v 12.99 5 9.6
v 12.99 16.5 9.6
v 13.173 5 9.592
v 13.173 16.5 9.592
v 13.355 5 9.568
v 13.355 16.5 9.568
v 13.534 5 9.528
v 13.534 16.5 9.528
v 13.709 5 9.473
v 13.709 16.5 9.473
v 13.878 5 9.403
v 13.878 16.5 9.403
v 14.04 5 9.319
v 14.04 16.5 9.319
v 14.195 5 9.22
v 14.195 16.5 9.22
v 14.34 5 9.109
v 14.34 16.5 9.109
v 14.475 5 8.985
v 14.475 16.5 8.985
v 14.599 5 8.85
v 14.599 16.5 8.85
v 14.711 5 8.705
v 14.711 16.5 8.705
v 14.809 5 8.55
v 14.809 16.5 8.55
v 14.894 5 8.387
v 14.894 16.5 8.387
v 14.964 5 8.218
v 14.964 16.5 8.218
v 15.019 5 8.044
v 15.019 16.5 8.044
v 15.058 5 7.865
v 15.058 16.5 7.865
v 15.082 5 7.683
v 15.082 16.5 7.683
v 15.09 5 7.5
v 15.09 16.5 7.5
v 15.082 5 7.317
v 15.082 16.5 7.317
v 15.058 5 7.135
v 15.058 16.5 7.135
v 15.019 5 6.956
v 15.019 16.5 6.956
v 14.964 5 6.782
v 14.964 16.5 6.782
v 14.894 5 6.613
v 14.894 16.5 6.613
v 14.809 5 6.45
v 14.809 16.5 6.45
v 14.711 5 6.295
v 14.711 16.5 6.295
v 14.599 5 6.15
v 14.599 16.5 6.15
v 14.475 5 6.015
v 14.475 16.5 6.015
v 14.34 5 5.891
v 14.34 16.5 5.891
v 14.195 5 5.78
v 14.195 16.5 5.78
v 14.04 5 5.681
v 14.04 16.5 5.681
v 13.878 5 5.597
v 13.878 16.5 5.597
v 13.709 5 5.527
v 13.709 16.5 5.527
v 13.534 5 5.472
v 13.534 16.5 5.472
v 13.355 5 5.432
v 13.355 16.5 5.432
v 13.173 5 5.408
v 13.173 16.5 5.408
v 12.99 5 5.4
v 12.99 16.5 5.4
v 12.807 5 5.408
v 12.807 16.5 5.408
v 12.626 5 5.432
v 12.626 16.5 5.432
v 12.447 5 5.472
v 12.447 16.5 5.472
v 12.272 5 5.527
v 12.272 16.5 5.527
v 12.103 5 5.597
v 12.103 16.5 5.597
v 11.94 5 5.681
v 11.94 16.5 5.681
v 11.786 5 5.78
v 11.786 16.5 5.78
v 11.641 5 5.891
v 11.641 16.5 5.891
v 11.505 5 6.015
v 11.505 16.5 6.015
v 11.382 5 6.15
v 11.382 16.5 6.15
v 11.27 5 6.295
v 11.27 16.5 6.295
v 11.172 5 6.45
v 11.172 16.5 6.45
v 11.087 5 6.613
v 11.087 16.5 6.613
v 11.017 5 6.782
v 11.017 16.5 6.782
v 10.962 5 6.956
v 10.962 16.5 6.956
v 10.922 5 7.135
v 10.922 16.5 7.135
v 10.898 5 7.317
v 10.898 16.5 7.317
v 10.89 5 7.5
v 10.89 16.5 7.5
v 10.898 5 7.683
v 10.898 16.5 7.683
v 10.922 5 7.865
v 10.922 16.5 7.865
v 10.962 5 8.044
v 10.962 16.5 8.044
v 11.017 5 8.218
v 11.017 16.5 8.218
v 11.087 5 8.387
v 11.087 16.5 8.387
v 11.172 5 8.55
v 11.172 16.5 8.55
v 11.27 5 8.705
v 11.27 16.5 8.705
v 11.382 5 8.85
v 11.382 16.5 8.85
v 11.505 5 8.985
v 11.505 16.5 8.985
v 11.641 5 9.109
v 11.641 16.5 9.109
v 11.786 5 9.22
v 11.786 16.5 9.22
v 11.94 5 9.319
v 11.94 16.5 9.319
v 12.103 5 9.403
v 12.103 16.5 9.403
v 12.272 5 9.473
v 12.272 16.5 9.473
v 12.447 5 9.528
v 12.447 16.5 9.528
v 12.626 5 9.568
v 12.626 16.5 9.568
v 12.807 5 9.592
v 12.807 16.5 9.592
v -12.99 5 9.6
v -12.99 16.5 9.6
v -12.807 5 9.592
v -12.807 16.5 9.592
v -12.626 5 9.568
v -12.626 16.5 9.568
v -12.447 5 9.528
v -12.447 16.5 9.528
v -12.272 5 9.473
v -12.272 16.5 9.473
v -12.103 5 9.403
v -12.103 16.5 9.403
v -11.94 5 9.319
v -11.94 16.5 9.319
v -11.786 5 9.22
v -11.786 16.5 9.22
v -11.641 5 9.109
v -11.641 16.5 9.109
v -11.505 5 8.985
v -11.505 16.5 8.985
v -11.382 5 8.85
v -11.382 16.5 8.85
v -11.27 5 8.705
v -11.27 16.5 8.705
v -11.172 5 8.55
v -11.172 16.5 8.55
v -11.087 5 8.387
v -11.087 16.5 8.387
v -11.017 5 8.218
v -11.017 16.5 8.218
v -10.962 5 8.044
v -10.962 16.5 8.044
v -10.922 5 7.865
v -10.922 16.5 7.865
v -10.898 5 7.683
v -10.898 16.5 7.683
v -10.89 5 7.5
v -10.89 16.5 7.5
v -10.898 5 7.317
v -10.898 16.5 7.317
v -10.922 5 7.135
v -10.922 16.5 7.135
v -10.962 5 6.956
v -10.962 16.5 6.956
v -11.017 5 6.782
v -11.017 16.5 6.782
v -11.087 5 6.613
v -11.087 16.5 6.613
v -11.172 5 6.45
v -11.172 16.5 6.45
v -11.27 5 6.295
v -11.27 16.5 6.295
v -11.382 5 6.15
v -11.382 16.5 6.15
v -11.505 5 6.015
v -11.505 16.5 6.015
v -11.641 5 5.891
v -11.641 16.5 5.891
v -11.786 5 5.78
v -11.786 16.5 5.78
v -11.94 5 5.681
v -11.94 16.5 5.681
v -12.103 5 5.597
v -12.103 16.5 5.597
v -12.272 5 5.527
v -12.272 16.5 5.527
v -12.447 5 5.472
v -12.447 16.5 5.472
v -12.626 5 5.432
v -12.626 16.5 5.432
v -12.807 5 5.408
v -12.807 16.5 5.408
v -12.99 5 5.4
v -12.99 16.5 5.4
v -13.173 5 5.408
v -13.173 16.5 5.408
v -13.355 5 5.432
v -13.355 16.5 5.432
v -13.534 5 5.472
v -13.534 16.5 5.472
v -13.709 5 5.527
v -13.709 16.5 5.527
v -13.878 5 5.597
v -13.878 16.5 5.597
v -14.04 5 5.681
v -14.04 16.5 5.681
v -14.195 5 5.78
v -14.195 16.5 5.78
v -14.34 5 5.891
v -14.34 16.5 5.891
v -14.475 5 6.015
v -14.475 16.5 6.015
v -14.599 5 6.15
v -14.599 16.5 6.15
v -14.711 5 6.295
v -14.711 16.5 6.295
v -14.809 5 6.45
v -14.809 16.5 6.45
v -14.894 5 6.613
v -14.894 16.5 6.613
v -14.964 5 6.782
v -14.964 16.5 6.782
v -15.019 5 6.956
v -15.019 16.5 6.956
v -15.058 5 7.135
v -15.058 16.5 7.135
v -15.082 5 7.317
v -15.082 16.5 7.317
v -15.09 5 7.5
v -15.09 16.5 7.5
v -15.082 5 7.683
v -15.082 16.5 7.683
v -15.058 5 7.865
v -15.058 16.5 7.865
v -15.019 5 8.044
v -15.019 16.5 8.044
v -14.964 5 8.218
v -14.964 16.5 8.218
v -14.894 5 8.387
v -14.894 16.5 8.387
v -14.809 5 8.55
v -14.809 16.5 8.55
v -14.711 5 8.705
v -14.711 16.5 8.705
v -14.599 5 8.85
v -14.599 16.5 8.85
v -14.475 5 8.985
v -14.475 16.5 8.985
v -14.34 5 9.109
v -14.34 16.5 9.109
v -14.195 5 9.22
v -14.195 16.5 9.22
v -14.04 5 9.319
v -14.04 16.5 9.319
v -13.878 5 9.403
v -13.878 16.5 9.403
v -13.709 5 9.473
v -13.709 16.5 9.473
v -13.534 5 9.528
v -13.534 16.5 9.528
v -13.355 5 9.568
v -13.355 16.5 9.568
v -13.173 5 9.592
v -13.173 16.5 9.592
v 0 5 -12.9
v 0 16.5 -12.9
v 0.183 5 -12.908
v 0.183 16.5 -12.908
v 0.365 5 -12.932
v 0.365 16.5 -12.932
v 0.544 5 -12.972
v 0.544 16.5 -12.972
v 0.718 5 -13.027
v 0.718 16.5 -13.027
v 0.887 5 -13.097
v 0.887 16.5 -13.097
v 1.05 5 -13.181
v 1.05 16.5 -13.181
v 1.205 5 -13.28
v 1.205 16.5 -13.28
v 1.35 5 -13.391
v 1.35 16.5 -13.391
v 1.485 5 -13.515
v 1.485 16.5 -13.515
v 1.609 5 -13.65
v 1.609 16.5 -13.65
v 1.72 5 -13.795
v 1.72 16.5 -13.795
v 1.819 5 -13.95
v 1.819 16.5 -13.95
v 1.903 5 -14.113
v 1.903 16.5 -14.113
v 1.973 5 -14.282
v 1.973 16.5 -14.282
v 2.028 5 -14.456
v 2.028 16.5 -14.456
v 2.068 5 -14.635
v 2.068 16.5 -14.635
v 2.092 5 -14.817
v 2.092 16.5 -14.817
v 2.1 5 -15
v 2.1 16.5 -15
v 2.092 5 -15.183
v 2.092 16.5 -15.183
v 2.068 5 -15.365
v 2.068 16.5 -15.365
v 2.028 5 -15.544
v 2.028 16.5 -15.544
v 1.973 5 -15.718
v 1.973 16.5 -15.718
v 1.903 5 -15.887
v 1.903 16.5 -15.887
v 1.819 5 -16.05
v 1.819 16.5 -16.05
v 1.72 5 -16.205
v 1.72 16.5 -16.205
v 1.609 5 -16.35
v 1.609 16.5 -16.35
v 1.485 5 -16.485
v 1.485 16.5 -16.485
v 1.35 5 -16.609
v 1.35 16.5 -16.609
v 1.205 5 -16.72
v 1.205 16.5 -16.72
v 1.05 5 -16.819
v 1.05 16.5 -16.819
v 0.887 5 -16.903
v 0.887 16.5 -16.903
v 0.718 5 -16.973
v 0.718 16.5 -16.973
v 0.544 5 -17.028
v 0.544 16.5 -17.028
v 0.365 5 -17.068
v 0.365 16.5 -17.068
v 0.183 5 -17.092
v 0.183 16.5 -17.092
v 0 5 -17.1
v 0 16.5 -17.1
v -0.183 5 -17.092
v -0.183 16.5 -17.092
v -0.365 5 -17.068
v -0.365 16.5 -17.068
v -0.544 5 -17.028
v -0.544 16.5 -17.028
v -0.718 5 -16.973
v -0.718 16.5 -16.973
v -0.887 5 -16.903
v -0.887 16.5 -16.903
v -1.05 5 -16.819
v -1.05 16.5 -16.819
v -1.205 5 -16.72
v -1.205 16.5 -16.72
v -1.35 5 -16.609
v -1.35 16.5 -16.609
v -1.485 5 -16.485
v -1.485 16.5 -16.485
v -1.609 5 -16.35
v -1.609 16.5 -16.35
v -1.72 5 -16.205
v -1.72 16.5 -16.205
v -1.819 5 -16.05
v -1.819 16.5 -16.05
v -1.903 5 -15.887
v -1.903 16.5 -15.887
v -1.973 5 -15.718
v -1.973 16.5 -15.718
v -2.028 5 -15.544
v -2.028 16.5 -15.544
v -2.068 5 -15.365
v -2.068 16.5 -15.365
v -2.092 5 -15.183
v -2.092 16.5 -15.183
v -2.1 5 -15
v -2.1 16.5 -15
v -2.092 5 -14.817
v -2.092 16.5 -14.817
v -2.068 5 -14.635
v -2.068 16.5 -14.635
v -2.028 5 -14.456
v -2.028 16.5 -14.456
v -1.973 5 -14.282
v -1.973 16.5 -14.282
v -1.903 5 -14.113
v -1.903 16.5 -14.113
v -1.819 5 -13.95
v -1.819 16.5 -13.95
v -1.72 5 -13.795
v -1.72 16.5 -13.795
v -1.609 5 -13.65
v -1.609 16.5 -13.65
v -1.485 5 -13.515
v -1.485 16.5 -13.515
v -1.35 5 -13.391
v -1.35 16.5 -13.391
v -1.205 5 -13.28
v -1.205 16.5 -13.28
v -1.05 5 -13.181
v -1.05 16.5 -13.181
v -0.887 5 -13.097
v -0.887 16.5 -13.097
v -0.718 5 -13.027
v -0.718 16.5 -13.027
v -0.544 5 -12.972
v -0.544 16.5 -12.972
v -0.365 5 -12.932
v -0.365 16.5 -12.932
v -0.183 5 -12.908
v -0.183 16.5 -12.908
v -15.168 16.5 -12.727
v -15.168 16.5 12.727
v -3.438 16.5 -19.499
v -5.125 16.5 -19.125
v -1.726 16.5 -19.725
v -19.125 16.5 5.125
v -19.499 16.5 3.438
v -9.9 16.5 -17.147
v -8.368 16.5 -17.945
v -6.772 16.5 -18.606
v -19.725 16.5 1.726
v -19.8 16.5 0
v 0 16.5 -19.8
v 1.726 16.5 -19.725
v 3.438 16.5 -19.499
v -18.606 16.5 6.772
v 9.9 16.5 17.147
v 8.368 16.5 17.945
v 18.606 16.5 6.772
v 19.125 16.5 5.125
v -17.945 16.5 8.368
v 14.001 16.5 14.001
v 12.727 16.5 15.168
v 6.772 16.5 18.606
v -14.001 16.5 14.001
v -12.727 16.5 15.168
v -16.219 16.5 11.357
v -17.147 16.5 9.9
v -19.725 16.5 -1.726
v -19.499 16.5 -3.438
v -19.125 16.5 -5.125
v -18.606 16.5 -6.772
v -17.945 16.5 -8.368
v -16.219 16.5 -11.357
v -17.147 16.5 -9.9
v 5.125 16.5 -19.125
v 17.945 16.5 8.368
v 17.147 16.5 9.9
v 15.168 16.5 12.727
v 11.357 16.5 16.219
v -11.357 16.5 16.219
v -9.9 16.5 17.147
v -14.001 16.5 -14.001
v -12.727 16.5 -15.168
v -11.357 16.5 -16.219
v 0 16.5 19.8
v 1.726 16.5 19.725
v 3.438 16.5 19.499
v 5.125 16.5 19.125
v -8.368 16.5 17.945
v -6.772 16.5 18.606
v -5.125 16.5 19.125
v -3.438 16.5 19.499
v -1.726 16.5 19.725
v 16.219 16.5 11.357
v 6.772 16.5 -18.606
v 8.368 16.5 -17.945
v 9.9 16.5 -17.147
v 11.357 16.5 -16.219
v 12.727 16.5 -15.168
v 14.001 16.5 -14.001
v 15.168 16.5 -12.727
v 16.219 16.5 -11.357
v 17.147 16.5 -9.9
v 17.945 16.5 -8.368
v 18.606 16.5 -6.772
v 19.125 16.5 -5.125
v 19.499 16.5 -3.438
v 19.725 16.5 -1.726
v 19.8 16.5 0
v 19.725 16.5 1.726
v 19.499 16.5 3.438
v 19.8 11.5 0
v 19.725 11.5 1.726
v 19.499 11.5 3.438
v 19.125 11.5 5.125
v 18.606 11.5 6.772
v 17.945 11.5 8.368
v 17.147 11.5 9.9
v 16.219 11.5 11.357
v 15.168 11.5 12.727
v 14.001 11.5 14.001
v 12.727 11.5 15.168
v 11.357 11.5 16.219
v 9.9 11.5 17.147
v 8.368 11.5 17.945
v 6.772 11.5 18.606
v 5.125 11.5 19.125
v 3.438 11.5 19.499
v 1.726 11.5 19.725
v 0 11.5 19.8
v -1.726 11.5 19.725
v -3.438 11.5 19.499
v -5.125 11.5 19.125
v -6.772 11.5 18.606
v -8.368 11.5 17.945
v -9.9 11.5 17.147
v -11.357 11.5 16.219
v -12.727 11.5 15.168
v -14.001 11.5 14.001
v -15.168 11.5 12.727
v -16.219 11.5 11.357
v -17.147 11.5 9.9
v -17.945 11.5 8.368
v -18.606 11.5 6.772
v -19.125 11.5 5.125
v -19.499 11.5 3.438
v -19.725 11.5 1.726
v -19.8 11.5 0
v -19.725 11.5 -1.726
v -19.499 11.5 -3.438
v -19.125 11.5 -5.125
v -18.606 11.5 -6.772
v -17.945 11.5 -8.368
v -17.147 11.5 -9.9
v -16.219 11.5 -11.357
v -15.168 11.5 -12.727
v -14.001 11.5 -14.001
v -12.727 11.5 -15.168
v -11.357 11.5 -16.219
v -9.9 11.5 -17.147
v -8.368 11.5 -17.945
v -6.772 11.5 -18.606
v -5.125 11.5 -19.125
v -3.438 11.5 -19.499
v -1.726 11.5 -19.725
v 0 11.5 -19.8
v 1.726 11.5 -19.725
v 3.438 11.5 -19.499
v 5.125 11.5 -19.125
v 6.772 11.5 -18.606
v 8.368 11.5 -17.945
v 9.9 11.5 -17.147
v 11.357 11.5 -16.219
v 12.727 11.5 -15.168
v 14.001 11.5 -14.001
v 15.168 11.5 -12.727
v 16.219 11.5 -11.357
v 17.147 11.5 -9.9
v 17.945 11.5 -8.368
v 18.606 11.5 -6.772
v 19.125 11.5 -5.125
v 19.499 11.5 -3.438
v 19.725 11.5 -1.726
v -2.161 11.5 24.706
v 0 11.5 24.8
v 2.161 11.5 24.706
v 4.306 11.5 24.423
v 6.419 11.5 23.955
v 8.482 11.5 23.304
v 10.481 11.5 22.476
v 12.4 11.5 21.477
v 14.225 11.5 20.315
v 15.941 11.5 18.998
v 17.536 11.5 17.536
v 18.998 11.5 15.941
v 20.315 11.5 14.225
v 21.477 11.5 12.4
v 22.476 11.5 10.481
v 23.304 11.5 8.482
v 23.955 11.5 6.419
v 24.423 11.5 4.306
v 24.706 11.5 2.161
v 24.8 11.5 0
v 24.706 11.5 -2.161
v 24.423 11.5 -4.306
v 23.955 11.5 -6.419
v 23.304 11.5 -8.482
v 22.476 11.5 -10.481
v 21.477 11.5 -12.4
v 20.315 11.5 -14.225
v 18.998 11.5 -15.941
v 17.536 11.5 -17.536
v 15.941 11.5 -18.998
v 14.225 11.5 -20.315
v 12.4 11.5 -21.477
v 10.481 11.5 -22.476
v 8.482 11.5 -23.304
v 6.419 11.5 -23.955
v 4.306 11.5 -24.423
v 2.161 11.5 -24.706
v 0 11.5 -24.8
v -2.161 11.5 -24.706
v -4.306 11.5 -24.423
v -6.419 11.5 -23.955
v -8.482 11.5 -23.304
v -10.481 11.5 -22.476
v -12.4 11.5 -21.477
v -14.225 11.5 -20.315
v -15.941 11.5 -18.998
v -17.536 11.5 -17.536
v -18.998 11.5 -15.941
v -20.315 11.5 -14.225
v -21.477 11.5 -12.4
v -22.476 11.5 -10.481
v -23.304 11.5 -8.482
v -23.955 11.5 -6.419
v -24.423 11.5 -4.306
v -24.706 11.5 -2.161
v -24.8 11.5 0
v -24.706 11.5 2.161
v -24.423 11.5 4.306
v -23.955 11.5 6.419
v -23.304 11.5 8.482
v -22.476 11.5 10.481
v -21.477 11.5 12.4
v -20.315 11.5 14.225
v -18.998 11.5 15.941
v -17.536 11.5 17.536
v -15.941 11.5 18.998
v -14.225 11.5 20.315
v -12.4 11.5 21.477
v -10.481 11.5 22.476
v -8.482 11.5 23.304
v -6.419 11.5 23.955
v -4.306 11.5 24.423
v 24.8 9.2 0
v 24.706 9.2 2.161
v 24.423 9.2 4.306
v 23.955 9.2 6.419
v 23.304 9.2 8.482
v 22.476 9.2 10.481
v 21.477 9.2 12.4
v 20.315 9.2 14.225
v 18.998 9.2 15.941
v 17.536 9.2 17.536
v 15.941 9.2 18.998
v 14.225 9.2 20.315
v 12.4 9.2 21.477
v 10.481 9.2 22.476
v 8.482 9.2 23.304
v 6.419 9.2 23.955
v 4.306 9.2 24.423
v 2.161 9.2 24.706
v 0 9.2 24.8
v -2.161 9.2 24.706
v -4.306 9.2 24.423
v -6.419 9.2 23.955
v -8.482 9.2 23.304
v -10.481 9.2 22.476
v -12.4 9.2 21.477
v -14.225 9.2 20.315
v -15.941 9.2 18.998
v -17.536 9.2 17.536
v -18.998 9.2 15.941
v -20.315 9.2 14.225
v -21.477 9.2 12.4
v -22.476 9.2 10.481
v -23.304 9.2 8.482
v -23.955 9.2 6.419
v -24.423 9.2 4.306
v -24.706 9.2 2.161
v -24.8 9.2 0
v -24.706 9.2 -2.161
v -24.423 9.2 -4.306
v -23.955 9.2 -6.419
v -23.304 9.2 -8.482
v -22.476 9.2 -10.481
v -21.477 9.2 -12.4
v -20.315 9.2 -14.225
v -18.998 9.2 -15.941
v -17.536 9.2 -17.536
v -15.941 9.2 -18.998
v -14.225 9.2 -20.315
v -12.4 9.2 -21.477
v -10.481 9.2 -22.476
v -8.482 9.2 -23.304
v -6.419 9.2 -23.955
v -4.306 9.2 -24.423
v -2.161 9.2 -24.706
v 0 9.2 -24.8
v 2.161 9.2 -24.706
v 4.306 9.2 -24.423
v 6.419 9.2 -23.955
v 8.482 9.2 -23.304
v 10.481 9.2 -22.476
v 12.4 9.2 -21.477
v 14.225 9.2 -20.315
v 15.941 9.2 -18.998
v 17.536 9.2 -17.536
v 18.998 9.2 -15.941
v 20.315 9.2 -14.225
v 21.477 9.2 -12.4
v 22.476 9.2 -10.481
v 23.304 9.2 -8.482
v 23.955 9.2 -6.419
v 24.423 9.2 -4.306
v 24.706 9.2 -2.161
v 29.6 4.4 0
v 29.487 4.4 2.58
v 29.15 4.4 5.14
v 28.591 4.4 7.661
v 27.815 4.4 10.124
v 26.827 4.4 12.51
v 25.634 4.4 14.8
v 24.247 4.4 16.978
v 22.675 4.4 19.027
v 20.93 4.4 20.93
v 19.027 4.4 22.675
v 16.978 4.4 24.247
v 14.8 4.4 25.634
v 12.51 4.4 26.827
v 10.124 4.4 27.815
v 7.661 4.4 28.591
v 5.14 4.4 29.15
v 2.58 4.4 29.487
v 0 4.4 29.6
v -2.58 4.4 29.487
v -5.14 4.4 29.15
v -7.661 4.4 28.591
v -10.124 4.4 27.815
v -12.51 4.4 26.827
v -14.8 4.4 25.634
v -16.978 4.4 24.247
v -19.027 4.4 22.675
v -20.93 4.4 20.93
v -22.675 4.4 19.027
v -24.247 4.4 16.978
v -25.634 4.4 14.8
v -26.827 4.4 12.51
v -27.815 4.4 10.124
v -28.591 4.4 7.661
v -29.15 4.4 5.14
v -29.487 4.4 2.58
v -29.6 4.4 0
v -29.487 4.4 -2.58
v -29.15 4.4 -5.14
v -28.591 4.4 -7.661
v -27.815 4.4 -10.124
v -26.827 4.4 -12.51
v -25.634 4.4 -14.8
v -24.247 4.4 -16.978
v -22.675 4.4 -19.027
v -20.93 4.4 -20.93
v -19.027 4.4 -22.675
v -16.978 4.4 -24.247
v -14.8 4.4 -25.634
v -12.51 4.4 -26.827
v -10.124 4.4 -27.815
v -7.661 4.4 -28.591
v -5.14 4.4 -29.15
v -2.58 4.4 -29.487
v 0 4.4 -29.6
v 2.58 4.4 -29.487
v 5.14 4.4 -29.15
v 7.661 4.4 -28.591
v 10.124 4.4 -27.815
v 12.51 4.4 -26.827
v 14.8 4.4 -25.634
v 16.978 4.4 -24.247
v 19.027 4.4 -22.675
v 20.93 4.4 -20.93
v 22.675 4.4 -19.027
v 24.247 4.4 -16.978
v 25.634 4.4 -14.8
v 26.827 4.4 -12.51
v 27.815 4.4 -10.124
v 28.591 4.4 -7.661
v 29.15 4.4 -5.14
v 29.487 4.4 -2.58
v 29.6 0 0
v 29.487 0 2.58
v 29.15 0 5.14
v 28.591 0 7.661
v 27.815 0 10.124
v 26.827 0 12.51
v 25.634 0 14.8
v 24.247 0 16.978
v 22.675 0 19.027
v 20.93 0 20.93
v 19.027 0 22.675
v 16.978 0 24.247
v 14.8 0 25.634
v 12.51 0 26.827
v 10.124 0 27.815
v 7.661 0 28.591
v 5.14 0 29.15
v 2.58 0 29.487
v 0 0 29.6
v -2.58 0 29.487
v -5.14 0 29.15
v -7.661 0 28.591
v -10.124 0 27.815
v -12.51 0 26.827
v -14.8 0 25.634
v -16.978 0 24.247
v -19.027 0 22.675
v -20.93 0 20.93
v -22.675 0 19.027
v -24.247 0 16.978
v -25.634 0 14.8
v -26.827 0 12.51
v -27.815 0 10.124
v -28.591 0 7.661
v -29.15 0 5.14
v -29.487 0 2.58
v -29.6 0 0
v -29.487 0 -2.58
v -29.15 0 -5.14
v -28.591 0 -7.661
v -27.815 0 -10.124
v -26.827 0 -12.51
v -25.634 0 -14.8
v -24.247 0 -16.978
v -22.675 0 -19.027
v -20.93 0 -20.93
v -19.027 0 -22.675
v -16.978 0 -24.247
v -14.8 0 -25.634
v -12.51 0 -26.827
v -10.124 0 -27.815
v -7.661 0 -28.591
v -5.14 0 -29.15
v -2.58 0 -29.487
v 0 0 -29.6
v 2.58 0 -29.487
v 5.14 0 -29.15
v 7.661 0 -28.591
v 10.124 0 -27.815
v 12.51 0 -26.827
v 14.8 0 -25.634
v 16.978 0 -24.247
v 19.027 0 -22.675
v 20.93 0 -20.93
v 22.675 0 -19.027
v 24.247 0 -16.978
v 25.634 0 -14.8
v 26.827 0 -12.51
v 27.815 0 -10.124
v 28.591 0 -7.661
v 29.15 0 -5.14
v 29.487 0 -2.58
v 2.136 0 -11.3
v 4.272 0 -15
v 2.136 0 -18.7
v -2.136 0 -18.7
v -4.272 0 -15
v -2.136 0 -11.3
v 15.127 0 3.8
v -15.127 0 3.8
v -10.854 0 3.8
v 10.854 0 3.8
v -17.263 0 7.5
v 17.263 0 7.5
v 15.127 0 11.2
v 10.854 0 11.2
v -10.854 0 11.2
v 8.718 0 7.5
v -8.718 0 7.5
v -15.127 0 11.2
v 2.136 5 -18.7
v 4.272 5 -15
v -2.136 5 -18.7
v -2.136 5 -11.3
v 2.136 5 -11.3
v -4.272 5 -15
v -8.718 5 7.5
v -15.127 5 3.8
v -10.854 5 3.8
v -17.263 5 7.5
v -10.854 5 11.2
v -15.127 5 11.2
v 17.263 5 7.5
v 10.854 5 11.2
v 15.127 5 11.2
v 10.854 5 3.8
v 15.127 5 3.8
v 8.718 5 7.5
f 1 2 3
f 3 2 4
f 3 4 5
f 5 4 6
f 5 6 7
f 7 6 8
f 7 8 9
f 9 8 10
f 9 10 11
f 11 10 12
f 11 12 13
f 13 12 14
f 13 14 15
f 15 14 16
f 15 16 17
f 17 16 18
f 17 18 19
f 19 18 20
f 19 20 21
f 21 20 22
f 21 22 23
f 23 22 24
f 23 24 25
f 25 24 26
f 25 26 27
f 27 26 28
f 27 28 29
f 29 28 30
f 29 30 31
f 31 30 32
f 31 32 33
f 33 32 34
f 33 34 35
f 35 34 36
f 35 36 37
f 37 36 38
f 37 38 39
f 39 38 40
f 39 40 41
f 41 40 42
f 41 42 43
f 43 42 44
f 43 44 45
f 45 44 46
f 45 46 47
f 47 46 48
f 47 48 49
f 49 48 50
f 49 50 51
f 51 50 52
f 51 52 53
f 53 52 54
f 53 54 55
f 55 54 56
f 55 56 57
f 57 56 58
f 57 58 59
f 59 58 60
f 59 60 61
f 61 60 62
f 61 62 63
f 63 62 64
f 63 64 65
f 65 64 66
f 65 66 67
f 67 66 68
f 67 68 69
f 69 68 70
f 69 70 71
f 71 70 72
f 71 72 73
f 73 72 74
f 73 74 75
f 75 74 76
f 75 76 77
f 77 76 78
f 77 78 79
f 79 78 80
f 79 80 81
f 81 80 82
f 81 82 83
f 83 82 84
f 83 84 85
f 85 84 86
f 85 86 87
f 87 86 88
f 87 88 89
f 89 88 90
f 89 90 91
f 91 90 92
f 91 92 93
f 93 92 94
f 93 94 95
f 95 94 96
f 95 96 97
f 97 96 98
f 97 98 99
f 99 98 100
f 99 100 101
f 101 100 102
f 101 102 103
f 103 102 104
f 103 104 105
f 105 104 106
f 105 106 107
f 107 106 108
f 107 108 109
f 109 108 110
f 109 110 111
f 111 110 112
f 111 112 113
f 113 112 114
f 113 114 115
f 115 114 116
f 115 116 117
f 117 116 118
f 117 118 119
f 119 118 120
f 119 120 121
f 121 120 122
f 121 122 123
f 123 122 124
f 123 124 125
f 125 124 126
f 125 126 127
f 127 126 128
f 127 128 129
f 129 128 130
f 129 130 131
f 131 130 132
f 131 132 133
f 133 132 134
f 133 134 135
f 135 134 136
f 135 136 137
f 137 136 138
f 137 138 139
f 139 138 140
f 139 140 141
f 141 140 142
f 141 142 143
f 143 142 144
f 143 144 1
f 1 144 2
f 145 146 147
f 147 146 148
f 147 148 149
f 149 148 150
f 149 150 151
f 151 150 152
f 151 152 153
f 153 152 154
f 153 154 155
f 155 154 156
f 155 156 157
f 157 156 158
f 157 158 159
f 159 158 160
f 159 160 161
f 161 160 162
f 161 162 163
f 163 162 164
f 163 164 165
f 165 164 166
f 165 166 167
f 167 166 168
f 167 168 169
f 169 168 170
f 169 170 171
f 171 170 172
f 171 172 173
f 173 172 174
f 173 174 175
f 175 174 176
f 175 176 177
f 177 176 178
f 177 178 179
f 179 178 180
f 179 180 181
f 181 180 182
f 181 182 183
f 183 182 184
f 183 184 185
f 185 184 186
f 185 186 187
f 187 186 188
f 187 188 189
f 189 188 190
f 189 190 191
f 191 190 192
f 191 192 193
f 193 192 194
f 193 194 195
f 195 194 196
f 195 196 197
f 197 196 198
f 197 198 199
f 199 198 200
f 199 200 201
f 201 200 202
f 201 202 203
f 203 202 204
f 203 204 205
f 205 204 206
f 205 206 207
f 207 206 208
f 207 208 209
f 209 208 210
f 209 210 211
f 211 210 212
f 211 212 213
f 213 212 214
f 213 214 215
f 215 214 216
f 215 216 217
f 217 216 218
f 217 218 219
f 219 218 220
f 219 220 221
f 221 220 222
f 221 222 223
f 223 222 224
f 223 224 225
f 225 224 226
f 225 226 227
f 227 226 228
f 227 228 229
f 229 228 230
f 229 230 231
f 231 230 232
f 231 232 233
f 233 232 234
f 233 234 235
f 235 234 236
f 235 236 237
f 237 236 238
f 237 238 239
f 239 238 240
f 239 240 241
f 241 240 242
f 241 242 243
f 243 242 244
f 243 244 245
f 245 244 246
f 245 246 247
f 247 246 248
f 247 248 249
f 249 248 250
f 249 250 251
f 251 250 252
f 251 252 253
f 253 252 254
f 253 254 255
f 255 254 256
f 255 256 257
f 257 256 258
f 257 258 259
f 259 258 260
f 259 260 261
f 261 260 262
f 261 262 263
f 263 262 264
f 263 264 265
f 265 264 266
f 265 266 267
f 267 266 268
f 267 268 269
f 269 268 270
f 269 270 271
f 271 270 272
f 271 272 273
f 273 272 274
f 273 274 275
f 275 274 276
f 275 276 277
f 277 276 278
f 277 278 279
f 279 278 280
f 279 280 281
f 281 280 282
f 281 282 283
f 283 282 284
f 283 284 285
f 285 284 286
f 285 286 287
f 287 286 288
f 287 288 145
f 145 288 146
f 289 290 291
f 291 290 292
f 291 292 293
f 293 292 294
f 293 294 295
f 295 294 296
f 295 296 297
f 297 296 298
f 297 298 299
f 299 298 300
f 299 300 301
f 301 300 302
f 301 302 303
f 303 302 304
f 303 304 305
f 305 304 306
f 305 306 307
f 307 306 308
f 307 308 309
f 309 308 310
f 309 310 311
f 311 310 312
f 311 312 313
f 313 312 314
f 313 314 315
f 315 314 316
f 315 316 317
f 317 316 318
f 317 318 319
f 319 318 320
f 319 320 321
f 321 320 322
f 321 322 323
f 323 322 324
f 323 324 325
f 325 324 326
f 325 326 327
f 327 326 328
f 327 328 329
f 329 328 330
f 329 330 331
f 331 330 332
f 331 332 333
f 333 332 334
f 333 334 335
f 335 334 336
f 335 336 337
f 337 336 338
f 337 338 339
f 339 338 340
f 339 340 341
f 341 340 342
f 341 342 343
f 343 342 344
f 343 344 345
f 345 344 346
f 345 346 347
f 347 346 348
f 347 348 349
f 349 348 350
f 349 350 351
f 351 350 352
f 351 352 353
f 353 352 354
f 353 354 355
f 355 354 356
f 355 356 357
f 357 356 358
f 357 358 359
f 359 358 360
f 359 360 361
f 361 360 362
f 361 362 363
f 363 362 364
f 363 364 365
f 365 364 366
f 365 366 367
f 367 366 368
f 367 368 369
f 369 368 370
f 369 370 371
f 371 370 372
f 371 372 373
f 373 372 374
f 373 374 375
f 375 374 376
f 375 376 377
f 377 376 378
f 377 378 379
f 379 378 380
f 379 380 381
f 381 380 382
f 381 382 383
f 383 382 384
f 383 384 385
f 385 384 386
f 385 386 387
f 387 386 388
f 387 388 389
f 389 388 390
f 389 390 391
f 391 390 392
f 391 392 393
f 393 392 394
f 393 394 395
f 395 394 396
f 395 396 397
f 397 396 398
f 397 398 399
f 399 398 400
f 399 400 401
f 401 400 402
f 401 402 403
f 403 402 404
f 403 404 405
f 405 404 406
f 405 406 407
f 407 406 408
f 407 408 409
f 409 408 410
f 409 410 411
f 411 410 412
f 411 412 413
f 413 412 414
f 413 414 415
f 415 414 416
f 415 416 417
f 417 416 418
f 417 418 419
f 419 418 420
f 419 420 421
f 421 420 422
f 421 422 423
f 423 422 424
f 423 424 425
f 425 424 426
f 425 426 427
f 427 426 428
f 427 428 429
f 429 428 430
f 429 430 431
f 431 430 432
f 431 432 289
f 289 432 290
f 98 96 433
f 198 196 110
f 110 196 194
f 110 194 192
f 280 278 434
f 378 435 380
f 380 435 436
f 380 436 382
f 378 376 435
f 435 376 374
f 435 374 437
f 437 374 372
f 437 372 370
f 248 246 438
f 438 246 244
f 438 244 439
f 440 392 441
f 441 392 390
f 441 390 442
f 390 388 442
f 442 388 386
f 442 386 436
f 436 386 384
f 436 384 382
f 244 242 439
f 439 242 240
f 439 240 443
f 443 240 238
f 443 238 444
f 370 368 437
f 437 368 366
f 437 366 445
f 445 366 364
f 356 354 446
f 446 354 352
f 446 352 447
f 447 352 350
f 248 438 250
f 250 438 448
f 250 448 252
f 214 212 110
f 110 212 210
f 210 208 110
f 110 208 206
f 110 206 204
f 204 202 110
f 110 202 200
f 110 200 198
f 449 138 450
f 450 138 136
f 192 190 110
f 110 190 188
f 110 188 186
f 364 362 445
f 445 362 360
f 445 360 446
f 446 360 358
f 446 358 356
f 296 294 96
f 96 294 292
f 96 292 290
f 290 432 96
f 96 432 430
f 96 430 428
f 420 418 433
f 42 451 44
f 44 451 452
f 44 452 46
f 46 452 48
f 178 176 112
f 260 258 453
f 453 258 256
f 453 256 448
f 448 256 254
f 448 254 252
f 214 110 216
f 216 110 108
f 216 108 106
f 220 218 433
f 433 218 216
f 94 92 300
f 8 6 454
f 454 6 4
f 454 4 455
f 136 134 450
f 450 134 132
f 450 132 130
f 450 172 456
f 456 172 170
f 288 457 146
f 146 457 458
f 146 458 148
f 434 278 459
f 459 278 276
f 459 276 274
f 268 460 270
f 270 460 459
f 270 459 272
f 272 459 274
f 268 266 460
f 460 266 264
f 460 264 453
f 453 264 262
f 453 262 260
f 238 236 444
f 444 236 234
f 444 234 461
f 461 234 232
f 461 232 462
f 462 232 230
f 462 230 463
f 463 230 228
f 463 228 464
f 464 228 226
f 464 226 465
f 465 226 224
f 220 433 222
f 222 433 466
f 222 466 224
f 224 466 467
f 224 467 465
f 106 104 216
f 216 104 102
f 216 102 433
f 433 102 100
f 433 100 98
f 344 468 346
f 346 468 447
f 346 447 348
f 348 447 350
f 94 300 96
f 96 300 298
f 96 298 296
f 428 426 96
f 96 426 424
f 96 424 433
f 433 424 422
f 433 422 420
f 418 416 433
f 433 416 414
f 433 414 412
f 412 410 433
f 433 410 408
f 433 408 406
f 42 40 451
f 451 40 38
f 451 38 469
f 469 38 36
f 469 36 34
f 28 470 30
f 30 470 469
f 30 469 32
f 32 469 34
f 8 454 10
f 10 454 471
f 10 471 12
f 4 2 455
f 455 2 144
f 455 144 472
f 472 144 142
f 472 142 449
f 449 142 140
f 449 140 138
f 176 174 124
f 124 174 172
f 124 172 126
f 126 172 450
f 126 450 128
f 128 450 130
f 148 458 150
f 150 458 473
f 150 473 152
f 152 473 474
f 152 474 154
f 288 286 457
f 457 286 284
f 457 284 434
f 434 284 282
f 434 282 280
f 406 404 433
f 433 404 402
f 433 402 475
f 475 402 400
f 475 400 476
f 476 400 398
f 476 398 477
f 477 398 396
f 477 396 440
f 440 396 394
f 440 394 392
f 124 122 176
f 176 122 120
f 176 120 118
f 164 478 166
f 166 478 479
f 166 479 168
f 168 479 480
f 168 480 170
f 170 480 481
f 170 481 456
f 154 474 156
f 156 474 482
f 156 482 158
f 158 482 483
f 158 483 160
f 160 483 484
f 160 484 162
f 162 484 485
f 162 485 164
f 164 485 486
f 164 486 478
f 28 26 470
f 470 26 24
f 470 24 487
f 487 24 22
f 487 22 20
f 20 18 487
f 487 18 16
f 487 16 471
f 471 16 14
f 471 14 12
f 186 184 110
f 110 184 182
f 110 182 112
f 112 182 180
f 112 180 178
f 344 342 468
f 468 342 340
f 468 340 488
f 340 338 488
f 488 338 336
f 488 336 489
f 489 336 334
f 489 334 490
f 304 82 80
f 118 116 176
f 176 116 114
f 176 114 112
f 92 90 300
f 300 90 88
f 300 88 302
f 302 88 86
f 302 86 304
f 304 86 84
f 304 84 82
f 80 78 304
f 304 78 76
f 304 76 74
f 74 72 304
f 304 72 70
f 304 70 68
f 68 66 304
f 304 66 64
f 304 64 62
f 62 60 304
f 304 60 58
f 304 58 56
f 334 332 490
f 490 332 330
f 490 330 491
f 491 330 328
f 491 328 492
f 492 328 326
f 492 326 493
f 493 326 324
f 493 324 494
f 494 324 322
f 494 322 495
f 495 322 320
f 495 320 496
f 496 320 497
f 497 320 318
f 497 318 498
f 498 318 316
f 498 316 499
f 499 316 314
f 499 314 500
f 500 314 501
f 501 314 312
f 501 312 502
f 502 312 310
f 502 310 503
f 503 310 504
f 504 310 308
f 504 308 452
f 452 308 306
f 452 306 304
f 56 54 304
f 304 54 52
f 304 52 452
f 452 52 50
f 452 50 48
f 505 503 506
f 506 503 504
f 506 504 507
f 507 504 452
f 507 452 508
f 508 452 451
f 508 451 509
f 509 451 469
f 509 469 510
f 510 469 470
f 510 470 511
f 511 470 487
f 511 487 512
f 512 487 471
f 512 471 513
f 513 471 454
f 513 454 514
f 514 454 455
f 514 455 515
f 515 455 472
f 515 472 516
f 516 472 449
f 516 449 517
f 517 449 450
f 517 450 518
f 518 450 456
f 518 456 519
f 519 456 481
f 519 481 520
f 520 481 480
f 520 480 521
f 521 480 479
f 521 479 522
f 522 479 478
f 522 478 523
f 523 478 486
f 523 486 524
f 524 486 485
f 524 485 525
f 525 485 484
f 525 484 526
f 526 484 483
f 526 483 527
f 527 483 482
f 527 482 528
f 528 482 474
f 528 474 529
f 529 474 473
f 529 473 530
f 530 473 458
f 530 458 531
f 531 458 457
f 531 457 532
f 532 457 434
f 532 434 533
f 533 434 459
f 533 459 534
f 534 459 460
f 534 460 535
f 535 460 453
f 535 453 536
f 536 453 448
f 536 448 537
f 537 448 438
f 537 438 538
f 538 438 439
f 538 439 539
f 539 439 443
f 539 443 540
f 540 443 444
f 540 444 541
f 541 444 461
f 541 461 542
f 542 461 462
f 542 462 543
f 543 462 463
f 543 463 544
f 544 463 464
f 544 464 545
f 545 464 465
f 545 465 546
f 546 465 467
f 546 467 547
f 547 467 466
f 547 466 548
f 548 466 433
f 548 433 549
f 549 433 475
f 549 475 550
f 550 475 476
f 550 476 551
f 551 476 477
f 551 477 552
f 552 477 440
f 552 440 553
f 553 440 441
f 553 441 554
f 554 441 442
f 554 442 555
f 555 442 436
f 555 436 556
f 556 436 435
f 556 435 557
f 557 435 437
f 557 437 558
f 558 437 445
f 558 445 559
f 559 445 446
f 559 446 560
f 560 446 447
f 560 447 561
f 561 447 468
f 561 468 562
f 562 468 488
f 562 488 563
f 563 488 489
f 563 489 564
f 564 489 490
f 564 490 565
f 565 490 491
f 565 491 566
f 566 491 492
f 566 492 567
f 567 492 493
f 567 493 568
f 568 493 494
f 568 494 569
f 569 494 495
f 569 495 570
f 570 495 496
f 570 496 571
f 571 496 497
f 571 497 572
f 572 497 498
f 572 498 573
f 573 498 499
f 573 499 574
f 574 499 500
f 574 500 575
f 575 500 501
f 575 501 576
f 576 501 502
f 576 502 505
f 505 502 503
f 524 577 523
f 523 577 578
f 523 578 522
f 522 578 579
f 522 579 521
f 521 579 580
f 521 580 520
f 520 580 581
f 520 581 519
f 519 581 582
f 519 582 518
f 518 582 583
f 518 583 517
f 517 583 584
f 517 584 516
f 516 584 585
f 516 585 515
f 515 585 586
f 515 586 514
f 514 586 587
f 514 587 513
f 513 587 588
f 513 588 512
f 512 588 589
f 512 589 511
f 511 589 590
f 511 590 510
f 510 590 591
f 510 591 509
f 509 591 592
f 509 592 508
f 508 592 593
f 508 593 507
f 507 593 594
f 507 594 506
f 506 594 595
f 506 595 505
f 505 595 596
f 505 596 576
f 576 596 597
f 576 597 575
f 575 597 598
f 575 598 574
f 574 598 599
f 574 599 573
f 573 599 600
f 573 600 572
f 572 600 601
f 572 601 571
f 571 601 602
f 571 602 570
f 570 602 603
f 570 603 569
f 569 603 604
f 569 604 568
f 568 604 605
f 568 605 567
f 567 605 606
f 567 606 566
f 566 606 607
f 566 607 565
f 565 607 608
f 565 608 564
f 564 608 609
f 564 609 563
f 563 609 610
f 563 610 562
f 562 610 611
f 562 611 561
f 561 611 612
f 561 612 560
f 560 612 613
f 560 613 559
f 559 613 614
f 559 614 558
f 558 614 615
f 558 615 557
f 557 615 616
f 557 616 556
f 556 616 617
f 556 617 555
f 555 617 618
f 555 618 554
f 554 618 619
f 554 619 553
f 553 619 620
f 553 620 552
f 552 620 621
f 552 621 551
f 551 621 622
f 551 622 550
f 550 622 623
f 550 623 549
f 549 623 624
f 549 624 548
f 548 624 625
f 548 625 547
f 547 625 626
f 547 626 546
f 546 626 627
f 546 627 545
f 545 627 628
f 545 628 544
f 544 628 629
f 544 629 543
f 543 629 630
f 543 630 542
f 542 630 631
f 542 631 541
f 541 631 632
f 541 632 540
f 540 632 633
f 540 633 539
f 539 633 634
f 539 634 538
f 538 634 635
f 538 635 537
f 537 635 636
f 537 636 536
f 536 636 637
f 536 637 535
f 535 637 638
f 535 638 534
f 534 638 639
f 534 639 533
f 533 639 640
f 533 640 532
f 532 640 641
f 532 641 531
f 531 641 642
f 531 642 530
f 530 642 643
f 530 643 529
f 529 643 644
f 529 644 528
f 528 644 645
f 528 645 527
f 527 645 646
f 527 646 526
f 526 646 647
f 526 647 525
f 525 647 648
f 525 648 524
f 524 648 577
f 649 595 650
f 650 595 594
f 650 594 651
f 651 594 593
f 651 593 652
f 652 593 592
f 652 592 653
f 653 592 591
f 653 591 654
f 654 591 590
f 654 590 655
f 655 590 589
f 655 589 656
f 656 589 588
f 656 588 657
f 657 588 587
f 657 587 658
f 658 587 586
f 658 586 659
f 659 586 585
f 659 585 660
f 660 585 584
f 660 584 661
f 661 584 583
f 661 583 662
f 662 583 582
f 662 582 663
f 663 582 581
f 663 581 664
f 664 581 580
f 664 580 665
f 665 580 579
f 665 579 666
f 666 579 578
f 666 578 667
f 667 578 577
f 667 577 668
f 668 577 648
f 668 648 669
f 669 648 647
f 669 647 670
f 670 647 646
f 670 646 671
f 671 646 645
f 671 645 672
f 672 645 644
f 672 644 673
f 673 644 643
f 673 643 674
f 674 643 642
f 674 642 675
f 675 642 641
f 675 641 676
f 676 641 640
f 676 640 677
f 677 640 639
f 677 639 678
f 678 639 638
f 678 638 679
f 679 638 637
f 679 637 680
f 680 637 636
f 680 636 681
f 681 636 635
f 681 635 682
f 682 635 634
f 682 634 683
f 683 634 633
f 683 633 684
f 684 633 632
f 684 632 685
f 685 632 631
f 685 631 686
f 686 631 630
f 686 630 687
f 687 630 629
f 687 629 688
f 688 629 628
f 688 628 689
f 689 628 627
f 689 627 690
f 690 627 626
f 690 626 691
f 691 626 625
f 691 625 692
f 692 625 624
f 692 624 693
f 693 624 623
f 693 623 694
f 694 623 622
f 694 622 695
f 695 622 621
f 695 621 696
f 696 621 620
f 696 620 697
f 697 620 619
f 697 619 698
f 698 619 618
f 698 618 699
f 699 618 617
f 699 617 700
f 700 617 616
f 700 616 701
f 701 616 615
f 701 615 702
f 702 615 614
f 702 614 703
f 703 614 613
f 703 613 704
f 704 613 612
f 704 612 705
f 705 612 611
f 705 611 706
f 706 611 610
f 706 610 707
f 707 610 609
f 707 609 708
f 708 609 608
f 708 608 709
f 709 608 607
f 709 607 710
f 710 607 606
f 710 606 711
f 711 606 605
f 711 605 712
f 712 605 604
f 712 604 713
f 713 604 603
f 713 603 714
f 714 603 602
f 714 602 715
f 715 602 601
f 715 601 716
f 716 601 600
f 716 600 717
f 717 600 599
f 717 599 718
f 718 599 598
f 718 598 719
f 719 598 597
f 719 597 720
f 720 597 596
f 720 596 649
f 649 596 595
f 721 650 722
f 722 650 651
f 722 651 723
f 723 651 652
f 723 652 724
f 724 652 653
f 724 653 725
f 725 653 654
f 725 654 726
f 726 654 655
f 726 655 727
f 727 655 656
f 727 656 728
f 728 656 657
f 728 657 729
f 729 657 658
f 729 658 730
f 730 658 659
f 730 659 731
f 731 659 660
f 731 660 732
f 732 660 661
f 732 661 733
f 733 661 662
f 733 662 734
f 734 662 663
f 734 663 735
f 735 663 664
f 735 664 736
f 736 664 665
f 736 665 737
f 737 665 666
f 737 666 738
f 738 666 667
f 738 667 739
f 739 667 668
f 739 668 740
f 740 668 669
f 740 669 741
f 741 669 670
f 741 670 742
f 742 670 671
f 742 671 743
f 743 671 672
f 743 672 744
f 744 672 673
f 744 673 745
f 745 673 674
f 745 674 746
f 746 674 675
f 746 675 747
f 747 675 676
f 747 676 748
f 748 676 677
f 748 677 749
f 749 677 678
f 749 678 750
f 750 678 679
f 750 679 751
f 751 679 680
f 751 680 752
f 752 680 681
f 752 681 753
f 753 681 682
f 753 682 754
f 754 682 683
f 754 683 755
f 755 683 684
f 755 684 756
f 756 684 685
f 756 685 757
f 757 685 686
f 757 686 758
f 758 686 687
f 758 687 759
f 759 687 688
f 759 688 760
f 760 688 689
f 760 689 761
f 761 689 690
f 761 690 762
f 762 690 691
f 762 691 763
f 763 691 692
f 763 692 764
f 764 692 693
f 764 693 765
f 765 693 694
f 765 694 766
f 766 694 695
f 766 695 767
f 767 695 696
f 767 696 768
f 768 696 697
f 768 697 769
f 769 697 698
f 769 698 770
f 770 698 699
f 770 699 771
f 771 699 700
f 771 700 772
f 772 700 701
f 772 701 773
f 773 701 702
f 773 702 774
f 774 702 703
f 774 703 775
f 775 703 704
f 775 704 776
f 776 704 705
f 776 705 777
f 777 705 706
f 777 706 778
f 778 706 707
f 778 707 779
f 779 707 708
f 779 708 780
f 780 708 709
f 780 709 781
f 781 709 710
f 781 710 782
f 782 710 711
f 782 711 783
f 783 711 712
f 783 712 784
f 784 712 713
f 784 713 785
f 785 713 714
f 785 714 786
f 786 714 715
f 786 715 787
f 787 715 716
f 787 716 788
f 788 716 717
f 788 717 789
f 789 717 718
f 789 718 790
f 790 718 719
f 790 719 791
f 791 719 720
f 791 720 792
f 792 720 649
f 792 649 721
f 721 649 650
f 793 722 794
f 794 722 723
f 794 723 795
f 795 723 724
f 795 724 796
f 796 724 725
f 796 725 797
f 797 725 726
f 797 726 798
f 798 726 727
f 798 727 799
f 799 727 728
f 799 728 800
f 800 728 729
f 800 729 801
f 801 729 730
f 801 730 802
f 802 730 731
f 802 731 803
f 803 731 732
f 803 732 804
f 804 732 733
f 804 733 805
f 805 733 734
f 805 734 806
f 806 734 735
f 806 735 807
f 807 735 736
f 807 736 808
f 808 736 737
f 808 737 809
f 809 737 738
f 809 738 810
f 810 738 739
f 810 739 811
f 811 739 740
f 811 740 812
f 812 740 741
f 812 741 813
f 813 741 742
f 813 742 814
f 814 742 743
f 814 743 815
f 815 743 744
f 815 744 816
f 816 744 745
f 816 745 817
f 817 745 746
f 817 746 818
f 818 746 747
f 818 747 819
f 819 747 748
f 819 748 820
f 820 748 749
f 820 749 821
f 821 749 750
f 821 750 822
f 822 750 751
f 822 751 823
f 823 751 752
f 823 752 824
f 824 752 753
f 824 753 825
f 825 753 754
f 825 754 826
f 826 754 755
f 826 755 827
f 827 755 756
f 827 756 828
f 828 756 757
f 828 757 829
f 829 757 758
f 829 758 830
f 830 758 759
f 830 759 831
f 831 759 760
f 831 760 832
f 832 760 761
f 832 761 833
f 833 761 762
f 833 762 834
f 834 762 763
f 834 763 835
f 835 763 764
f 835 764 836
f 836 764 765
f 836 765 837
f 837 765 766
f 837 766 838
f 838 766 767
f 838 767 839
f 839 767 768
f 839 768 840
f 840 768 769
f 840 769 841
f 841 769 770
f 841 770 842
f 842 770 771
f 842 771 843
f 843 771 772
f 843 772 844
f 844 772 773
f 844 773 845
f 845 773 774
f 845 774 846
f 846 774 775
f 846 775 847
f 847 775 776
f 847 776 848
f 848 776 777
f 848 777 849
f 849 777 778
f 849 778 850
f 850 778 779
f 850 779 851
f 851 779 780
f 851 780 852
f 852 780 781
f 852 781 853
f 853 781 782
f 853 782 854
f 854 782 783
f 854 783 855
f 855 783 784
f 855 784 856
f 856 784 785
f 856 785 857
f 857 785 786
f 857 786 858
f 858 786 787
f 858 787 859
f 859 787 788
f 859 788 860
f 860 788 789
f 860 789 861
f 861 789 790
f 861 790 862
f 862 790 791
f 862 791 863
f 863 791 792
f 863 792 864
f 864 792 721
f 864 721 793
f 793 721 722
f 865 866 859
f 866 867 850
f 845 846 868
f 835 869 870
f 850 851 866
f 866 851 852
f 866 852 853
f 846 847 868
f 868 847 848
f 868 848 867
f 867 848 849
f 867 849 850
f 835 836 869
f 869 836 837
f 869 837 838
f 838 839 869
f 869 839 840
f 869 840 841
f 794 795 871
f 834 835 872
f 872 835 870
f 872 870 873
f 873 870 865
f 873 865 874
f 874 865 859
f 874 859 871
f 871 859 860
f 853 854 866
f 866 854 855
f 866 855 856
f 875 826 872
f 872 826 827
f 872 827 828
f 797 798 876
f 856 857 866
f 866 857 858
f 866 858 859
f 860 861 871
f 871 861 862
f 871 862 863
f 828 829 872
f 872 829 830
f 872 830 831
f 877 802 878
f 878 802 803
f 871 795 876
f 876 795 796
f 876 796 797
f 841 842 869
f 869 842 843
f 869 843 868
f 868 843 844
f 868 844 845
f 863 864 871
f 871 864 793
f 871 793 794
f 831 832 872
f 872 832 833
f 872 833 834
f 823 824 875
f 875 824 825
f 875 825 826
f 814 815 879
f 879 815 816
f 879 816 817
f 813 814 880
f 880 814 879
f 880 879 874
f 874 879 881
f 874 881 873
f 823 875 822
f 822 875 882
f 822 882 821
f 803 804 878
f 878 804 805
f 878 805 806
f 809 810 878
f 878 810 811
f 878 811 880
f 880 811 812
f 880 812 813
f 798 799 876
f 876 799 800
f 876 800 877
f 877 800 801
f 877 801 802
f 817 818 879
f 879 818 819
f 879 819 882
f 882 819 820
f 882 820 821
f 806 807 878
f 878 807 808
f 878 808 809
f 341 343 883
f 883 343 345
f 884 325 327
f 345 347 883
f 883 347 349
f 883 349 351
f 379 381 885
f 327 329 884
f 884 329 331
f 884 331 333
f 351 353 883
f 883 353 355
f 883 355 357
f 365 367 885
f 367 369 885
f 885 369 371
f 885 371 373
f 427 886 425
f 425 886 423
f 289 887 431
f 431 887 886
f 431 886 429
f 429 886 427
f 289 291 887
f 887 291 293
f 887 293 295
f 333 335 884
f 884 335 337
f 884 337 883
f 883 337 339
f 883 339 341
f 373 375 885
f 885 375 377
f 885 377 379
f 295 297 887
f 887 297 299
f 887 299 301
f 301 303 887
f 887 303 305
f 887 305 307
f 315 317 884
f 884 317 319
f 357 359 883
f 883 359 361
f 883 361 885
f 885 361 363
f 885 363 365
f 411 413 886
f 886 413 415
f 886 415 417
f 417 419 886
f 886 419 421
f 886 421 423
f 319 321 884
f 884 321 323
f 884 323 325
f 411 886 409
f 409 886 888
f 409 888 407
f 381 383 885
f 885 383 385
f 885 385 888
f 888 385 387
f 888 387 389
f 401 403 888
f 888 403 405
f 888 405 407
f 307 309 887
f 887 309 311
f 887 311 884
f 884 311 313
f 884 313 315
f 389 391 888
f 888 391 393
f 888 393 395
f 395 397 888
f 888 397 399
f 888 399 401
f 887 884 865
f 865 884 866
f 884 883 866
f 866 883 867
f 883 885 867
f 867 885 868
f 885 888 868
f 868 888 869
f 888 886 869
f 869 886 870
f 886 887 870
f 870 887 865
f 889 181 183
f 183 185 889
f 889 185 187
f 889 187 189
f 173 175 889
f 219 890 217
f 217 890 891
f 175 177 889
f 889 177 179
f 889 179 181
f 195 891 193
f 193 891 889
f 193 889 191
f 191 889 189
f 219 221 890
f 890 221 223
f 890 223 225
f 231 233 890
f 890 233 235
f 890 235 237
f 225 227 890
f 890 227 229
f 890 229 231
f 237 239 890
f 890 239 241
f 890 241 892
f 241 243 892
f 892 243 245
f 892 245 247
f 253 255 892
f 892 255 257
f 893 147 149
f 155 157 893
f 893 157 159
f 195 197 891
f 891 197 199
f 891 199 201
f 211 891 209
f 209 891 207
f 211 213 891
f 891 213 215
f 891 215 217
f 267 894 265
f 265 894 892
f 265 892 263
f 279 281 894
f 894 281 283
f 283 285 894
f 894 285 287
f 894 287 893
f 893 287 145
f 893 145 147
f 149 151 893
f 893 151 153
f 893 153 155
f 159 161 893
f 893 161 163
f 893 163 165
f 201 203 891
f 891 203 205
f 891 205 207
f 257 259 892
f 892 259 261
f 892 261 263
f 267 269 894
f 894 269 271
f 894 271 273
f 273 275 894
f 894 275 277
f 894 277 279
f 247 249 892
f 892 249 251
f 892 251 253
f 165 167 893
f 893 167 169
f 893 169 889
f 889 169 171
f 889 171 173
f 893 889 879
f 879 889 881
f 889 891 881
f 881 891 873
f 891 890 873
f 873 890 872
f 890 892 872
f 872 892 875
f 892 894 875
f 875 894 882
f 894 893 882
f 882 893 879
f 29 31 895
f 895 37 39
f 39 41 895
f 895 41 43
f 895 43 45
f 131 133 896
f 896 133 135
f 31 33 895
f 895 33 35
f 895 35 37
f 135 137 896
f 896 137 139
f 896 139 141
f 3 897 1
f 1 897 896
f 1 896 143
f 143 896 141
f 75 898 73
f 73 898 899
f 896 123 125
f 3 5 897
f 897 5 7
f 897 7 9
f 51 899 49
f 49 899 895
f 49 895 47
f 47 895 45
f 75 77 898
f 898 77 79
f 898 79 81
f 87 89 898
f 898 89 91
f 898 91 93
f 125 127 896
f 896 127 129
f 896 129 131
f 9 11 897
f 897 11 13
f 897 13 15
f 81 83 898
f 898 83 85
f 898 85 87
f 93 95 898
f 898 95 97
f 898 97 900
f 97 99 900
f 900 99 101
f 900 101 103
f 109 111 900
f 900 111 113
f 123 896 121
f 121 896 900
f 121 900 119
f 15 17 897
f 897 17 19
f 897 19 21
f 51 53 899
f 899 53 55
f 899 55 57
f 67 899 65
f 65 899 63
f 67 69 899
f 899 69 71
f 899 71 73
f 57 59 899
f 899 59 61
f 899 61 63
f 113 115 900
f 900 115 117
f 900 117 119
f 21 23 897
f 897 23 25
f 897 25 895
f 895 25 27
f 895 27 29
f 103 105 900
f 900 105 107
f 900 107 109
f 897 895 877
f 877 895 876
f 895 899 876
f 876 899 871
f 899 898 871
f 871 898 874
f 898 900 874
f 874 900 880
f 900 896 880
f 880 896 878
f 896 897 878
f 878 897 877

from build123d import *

# Parameters (mm, degrees)
CUT_EXTRUDE1_REACH = 46.995
SKETCH2_R          = 2.1
CUT_EXTRUDE2_DEPTH = 5


with BuildPart() as part:
    # Sketch1 → Revolve1 (revolve)
    with BuildSketch(Plane.XY):
        Polygon((0, 16.5), (19.8, 16.5), (19.8, 11.5), (24.8, 11.5), (24.8, 9.2), (29.6, 4.4), (29.6, 0), (0, 0), align=None)
    revolve(axis=Axis((0, 0, 0), (0, 1, 0)))

    # Sketch2 → Cut-Extrude1 (cut, up to next)
    with BuildSketch(Plane(origin=(0, 16.5, 0), x_dir=(1, 0, 0), z_dir=(0, 1, 0)), mode=Mode.PRIVATE) as cut_extrude1_sk1:
        with Locations(Location((0, 15, 0), (0, 0, 270))):
            Circle(SKETCH2_R)
    cut_extrude1_tool1 = extrude(cut_extrude1_sk1.sketch, amount=-CUT_EXTRUDE1_REACH, mode=Mode.PRIVATE) & part.part
    # Sketch2 → Cut-Extrude1 (cut, up to next)
    with BuildSketch(Plane(origin=(0, 16.5, 0), x_dir=(1, 0, 0), z_dir=(0, 1, 0)), mode=Mode.PRIVATE) as cut_extrude1_sk2:
        with Locations(Location((-12.990381057, -7.5, 0), (0, 0, 270))):
            Circle(SKETCH2_R)
    cut_extrude1_tool2 = extrude(cut_extrude1_sk2.sketch, amount=-CUT_EXTRUDE1_REACH, mode=Mode.PRIVATE) & part.part
    # Sketch2 → Cut-Extrude1 (cut, up to next)
    with BuildSketch(Plane(origin=(0, 16.5, 0), x_dir=(1, 0, 0), z_dir=(0, 1, 0)), mode=Mode.PRIVATE) as cut_extrude1_sk3:
        with Locations(Location((12.990381057, -7.5, 0), (0, 0, 270))):
            Circle(SKETCH2_R)
    cut_extrude1_tool3 = extrude(cut_extrude1_sk3.sketch, amount=-CUT_EXTRUDE1_REACH, mode=Mode.PRIVATE) & part.part
    add(cut_extrude1_tool1.solids().sort_by_distance((0, 16.5, -15))[0], mode=Mode.SUBTRACT)
    add(cut_extrude1_tool2.solids().sort_by_distance((-12.990381, 16.5, 7.5))[0], mode=Mode.SUBTRACT)
    add(cut_extrude1_tool3.solids().sort_by_distance((12.990381, 16.5, 7.5))[0], mode=Mode.SUBTRACT)

    # Sketch3 → Cut-Extrude2 (cut)
    with BuildSketch(Plane.XZ):
        Polygon((-10.854185061, 11.2), (-15.126577053, 11.2), (-17.262773049, 7.5), (-15.126577053, 3.8), (-10.854185061, 3.8), (-8.717989065, 7.5), align=None)
        Polygon((15.126577053, 11.2), (10.854185061, 11.2), (8.717989065, 7.5), (10.854185061, 3.8), (15.126577053, 3.8), (17.262773049, 7.5), align=None)
        Polygon((2.136195996, -11.3), (-2.136195996, -11.3), (-4.272391992, -15), (-2.136195996, -18.7), (2.136195996, -18.7), (4.272391992, -15), align=None)
    extrude(amount=-CUT_EXTRUDE2_DEPTH, mode=Mode.SUBTRACT)


solid = part.part
